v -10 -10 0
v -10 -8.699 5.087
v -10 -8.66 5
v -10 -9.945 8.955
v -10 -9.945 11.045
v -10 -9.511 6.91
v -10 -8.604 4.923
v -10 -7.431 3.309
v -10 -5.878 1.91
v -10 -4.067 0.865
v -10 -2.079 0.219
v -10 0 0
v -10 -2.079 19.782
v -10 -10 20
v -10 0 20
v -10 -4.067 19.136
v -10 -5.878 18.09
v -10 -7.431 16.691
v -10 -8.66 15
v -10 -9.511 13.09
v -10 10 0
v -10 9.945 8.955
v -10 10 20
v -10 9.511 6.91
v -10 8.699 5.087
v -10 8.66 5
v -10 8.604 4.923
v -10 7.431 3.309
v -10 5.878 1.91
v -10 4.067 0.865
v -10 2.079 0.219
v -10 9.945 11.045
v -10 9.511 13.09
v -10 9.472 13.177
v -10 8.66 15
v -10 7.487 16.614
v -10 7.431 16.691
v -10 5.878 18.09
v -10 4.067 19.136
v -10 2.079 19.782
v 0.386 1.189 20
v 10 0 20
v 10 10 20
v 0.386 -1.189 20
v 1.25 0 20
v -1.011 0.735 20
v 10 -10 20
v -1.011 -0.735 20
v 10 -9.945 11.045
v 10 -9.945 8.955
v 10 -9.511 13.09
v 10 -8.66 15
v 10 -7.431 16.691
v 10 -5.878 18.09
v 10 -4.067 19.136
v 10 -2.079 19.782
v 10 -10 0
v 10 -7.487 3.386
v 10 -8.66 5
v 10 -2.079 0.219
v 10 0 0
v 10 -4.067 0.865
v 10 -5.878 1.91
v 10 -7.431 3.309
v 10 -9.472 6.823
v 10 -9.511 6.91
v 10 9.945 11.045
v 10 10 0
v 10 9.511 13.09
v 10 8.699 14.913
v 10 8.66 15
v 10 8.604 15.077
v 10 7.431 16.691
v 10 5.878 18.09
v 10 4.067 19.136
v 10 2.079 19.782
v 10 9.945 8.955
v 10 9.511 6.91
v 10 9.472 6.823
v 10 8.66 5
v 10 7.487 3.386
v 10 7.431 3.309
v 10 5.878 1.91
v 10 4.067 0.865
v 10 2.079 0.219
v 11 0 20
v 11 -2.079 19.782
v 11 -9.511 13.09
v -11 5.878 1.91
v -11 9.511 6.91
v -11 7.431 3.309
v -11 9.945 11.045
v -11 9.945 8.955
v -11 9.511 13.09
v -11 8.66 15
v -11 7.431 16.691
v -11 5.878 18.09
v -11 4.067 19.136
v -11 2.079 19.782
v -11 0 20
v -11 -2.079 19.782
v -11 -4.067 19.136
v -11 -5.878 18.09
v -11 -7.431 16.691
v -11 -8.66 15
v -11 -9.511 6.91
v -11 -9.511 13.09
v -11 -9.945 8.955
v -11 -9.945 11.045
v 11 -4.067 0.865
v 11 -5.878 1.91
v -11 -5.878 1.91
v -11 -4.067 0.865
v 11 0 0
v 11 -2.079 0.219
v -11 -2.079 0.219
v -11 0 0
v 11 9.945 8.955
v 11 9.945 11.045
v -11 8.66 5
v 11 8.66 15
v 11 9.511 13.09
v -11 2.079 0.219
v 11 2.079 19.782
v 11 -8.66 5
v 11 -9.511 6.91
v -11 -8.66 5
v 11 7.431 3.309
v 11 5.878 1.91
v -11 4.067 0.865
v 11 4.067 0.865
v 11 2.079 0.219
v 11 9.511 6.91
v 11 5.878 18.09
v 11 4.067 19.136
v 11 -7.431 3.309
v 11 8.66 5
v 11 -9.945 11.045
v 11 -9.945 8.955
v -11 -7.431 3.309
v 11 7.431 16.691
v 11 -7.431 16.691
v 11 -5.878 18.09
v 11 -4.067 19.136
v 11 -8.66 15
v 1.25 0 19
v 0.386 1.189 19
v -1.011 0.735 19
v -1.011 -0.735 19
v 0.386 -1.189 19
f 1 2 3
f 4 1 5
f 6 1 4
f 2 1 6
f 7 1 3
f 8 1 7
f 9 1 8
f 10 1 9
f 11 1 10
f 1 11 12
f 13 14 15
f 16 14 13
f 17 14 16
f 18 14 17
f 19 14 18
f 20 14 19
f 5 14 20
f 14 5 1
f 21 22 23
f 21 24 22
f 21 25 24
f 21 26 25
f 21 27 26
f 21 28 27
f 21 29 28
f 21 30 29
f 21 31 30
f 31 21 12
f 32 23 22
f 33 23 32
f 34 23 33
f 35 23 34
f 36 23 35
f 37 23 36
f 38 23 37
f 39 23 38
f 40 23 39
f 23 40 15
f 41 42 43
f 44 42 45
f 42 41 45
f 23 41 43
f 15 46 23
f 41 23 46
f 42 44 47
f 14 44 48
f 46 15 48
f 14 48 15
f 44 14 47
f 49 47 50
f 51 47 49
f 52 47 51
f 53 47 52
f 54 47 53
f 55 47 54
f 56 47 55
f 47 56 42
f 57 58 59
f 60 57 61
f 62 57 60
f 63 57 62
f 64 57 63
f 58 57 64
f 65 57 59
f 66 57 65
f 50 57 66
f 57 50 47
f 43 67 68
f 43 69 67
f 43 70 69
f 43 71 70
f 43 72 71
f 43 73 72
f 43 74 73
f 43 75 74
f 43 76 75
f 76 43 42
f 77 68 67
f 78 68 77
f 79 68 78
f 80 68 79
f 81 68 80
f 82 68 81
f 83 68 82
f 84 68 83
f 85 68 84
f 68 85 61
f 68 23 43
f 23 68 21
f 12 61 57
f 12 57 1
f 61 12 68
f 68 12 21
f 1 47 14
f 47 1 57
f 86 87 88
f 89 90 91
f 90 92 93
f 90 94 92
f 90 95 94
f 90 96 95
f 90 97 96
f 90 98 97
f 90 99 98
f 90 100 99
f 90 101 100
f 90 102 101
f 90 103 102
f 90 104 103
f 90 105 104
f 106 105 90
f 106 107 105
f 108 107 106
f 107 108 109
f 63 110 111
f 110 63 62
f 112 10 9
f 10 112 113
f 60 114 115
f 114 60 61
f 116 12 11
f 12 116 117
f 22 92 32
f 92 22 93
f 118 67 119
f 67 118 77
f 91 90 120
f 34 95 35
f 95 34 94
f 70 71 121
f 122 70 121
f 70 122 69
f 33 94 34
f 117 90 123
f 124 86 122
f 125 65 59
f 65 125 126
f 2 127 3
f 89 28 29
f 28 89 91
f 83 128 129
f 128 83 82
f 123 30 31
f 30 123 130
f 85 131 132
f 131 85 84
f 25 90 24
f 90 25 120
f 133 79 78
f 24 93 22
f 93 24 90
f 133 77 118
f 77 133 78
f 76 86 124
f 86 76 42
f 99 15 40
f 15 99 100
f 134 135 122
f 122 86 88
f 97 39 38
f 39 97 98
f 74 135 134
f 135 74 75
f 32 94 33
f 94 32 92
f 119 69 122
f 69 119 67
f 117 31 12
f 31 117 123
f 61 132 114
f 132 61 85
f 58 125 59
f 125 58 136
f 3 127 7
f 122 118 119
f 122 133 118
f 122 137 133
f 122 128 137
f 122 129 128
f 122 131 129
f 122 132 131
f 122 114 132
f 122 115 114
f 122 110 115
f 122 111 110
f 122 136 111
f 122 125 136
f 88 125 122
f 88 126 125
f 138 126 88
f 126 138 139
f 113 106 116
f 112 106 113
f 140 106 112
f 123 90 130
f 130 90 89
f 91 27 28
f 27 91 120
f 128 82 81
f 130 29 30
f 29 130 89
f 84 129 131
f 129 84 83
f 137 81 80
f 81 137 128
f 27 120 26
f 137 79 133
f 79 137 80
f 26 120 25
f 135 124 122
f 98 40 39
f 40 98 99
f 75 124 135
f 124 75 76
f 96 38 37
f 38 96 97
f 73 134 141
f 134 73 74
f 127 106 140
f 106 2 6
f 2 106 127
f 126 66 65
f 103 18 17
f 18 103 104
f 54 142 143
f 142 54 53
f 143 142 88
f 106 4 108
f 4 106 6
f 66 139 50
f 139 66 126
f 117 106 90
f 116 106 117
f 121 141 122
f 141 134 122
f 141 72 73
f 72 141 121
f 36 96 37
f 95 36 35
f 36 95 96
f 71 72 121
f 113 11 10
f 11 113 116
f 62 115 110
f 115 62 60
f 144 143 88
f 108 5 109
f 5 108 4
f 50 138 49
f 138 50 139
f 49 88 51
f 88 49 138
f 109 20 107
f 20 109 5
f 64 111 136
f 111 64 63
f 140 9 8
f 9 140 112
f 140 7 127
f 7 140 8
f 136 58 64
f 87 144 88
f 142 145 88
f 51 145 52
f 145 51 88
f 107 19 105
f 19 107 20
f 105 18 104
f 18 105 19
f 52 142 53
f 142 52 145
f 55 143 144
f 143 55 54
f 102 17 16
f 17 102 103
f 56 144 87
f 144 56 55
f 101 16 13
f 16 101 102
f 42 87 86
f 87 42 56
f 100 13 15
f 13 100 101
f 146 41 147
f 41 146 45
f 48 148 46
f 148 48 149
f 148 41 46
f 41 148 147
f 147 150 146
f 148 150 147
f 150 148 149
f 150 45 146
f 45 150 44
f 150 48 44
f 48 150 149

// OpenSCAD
cube_size = 20; // [10:Small,20:Medium,30:Large]

hole_diameter = 2.5;
hole_radius = hole_diameter/2;

// How deep should the center hole be?
hole_depth = 1; // [0,1,5,50]

show_wheels = "yes"; // [yes,no]

// How thick should the side wheels be?
wheel_thickness = 1; // [1:40]

// ignore this variable!
// foo=1;

// don't turn functions into params!
function BEZ03(u) = pow((1-u), 3);

// ignore variable values
bing = 3+4;
baz = 3 / hole_depth;

difference() {
  union() {
    translate([0, 0, cube_size/2]) cube([cube_size,cube_size,cube_size], center=true);
    if (show_wheels == "yes") {
      translate([0, 0, cube_size/2]) rotate([0, 90, 0]) {
        cylinder(r=cube_size/2, h=cube_size+(wheel_thickness*2), center=true);
      }
    }
  }
  translate([0, 0, cube_size-hole_depth]) cylinder(r=hole_radius, h=hole_depth);
}
        
